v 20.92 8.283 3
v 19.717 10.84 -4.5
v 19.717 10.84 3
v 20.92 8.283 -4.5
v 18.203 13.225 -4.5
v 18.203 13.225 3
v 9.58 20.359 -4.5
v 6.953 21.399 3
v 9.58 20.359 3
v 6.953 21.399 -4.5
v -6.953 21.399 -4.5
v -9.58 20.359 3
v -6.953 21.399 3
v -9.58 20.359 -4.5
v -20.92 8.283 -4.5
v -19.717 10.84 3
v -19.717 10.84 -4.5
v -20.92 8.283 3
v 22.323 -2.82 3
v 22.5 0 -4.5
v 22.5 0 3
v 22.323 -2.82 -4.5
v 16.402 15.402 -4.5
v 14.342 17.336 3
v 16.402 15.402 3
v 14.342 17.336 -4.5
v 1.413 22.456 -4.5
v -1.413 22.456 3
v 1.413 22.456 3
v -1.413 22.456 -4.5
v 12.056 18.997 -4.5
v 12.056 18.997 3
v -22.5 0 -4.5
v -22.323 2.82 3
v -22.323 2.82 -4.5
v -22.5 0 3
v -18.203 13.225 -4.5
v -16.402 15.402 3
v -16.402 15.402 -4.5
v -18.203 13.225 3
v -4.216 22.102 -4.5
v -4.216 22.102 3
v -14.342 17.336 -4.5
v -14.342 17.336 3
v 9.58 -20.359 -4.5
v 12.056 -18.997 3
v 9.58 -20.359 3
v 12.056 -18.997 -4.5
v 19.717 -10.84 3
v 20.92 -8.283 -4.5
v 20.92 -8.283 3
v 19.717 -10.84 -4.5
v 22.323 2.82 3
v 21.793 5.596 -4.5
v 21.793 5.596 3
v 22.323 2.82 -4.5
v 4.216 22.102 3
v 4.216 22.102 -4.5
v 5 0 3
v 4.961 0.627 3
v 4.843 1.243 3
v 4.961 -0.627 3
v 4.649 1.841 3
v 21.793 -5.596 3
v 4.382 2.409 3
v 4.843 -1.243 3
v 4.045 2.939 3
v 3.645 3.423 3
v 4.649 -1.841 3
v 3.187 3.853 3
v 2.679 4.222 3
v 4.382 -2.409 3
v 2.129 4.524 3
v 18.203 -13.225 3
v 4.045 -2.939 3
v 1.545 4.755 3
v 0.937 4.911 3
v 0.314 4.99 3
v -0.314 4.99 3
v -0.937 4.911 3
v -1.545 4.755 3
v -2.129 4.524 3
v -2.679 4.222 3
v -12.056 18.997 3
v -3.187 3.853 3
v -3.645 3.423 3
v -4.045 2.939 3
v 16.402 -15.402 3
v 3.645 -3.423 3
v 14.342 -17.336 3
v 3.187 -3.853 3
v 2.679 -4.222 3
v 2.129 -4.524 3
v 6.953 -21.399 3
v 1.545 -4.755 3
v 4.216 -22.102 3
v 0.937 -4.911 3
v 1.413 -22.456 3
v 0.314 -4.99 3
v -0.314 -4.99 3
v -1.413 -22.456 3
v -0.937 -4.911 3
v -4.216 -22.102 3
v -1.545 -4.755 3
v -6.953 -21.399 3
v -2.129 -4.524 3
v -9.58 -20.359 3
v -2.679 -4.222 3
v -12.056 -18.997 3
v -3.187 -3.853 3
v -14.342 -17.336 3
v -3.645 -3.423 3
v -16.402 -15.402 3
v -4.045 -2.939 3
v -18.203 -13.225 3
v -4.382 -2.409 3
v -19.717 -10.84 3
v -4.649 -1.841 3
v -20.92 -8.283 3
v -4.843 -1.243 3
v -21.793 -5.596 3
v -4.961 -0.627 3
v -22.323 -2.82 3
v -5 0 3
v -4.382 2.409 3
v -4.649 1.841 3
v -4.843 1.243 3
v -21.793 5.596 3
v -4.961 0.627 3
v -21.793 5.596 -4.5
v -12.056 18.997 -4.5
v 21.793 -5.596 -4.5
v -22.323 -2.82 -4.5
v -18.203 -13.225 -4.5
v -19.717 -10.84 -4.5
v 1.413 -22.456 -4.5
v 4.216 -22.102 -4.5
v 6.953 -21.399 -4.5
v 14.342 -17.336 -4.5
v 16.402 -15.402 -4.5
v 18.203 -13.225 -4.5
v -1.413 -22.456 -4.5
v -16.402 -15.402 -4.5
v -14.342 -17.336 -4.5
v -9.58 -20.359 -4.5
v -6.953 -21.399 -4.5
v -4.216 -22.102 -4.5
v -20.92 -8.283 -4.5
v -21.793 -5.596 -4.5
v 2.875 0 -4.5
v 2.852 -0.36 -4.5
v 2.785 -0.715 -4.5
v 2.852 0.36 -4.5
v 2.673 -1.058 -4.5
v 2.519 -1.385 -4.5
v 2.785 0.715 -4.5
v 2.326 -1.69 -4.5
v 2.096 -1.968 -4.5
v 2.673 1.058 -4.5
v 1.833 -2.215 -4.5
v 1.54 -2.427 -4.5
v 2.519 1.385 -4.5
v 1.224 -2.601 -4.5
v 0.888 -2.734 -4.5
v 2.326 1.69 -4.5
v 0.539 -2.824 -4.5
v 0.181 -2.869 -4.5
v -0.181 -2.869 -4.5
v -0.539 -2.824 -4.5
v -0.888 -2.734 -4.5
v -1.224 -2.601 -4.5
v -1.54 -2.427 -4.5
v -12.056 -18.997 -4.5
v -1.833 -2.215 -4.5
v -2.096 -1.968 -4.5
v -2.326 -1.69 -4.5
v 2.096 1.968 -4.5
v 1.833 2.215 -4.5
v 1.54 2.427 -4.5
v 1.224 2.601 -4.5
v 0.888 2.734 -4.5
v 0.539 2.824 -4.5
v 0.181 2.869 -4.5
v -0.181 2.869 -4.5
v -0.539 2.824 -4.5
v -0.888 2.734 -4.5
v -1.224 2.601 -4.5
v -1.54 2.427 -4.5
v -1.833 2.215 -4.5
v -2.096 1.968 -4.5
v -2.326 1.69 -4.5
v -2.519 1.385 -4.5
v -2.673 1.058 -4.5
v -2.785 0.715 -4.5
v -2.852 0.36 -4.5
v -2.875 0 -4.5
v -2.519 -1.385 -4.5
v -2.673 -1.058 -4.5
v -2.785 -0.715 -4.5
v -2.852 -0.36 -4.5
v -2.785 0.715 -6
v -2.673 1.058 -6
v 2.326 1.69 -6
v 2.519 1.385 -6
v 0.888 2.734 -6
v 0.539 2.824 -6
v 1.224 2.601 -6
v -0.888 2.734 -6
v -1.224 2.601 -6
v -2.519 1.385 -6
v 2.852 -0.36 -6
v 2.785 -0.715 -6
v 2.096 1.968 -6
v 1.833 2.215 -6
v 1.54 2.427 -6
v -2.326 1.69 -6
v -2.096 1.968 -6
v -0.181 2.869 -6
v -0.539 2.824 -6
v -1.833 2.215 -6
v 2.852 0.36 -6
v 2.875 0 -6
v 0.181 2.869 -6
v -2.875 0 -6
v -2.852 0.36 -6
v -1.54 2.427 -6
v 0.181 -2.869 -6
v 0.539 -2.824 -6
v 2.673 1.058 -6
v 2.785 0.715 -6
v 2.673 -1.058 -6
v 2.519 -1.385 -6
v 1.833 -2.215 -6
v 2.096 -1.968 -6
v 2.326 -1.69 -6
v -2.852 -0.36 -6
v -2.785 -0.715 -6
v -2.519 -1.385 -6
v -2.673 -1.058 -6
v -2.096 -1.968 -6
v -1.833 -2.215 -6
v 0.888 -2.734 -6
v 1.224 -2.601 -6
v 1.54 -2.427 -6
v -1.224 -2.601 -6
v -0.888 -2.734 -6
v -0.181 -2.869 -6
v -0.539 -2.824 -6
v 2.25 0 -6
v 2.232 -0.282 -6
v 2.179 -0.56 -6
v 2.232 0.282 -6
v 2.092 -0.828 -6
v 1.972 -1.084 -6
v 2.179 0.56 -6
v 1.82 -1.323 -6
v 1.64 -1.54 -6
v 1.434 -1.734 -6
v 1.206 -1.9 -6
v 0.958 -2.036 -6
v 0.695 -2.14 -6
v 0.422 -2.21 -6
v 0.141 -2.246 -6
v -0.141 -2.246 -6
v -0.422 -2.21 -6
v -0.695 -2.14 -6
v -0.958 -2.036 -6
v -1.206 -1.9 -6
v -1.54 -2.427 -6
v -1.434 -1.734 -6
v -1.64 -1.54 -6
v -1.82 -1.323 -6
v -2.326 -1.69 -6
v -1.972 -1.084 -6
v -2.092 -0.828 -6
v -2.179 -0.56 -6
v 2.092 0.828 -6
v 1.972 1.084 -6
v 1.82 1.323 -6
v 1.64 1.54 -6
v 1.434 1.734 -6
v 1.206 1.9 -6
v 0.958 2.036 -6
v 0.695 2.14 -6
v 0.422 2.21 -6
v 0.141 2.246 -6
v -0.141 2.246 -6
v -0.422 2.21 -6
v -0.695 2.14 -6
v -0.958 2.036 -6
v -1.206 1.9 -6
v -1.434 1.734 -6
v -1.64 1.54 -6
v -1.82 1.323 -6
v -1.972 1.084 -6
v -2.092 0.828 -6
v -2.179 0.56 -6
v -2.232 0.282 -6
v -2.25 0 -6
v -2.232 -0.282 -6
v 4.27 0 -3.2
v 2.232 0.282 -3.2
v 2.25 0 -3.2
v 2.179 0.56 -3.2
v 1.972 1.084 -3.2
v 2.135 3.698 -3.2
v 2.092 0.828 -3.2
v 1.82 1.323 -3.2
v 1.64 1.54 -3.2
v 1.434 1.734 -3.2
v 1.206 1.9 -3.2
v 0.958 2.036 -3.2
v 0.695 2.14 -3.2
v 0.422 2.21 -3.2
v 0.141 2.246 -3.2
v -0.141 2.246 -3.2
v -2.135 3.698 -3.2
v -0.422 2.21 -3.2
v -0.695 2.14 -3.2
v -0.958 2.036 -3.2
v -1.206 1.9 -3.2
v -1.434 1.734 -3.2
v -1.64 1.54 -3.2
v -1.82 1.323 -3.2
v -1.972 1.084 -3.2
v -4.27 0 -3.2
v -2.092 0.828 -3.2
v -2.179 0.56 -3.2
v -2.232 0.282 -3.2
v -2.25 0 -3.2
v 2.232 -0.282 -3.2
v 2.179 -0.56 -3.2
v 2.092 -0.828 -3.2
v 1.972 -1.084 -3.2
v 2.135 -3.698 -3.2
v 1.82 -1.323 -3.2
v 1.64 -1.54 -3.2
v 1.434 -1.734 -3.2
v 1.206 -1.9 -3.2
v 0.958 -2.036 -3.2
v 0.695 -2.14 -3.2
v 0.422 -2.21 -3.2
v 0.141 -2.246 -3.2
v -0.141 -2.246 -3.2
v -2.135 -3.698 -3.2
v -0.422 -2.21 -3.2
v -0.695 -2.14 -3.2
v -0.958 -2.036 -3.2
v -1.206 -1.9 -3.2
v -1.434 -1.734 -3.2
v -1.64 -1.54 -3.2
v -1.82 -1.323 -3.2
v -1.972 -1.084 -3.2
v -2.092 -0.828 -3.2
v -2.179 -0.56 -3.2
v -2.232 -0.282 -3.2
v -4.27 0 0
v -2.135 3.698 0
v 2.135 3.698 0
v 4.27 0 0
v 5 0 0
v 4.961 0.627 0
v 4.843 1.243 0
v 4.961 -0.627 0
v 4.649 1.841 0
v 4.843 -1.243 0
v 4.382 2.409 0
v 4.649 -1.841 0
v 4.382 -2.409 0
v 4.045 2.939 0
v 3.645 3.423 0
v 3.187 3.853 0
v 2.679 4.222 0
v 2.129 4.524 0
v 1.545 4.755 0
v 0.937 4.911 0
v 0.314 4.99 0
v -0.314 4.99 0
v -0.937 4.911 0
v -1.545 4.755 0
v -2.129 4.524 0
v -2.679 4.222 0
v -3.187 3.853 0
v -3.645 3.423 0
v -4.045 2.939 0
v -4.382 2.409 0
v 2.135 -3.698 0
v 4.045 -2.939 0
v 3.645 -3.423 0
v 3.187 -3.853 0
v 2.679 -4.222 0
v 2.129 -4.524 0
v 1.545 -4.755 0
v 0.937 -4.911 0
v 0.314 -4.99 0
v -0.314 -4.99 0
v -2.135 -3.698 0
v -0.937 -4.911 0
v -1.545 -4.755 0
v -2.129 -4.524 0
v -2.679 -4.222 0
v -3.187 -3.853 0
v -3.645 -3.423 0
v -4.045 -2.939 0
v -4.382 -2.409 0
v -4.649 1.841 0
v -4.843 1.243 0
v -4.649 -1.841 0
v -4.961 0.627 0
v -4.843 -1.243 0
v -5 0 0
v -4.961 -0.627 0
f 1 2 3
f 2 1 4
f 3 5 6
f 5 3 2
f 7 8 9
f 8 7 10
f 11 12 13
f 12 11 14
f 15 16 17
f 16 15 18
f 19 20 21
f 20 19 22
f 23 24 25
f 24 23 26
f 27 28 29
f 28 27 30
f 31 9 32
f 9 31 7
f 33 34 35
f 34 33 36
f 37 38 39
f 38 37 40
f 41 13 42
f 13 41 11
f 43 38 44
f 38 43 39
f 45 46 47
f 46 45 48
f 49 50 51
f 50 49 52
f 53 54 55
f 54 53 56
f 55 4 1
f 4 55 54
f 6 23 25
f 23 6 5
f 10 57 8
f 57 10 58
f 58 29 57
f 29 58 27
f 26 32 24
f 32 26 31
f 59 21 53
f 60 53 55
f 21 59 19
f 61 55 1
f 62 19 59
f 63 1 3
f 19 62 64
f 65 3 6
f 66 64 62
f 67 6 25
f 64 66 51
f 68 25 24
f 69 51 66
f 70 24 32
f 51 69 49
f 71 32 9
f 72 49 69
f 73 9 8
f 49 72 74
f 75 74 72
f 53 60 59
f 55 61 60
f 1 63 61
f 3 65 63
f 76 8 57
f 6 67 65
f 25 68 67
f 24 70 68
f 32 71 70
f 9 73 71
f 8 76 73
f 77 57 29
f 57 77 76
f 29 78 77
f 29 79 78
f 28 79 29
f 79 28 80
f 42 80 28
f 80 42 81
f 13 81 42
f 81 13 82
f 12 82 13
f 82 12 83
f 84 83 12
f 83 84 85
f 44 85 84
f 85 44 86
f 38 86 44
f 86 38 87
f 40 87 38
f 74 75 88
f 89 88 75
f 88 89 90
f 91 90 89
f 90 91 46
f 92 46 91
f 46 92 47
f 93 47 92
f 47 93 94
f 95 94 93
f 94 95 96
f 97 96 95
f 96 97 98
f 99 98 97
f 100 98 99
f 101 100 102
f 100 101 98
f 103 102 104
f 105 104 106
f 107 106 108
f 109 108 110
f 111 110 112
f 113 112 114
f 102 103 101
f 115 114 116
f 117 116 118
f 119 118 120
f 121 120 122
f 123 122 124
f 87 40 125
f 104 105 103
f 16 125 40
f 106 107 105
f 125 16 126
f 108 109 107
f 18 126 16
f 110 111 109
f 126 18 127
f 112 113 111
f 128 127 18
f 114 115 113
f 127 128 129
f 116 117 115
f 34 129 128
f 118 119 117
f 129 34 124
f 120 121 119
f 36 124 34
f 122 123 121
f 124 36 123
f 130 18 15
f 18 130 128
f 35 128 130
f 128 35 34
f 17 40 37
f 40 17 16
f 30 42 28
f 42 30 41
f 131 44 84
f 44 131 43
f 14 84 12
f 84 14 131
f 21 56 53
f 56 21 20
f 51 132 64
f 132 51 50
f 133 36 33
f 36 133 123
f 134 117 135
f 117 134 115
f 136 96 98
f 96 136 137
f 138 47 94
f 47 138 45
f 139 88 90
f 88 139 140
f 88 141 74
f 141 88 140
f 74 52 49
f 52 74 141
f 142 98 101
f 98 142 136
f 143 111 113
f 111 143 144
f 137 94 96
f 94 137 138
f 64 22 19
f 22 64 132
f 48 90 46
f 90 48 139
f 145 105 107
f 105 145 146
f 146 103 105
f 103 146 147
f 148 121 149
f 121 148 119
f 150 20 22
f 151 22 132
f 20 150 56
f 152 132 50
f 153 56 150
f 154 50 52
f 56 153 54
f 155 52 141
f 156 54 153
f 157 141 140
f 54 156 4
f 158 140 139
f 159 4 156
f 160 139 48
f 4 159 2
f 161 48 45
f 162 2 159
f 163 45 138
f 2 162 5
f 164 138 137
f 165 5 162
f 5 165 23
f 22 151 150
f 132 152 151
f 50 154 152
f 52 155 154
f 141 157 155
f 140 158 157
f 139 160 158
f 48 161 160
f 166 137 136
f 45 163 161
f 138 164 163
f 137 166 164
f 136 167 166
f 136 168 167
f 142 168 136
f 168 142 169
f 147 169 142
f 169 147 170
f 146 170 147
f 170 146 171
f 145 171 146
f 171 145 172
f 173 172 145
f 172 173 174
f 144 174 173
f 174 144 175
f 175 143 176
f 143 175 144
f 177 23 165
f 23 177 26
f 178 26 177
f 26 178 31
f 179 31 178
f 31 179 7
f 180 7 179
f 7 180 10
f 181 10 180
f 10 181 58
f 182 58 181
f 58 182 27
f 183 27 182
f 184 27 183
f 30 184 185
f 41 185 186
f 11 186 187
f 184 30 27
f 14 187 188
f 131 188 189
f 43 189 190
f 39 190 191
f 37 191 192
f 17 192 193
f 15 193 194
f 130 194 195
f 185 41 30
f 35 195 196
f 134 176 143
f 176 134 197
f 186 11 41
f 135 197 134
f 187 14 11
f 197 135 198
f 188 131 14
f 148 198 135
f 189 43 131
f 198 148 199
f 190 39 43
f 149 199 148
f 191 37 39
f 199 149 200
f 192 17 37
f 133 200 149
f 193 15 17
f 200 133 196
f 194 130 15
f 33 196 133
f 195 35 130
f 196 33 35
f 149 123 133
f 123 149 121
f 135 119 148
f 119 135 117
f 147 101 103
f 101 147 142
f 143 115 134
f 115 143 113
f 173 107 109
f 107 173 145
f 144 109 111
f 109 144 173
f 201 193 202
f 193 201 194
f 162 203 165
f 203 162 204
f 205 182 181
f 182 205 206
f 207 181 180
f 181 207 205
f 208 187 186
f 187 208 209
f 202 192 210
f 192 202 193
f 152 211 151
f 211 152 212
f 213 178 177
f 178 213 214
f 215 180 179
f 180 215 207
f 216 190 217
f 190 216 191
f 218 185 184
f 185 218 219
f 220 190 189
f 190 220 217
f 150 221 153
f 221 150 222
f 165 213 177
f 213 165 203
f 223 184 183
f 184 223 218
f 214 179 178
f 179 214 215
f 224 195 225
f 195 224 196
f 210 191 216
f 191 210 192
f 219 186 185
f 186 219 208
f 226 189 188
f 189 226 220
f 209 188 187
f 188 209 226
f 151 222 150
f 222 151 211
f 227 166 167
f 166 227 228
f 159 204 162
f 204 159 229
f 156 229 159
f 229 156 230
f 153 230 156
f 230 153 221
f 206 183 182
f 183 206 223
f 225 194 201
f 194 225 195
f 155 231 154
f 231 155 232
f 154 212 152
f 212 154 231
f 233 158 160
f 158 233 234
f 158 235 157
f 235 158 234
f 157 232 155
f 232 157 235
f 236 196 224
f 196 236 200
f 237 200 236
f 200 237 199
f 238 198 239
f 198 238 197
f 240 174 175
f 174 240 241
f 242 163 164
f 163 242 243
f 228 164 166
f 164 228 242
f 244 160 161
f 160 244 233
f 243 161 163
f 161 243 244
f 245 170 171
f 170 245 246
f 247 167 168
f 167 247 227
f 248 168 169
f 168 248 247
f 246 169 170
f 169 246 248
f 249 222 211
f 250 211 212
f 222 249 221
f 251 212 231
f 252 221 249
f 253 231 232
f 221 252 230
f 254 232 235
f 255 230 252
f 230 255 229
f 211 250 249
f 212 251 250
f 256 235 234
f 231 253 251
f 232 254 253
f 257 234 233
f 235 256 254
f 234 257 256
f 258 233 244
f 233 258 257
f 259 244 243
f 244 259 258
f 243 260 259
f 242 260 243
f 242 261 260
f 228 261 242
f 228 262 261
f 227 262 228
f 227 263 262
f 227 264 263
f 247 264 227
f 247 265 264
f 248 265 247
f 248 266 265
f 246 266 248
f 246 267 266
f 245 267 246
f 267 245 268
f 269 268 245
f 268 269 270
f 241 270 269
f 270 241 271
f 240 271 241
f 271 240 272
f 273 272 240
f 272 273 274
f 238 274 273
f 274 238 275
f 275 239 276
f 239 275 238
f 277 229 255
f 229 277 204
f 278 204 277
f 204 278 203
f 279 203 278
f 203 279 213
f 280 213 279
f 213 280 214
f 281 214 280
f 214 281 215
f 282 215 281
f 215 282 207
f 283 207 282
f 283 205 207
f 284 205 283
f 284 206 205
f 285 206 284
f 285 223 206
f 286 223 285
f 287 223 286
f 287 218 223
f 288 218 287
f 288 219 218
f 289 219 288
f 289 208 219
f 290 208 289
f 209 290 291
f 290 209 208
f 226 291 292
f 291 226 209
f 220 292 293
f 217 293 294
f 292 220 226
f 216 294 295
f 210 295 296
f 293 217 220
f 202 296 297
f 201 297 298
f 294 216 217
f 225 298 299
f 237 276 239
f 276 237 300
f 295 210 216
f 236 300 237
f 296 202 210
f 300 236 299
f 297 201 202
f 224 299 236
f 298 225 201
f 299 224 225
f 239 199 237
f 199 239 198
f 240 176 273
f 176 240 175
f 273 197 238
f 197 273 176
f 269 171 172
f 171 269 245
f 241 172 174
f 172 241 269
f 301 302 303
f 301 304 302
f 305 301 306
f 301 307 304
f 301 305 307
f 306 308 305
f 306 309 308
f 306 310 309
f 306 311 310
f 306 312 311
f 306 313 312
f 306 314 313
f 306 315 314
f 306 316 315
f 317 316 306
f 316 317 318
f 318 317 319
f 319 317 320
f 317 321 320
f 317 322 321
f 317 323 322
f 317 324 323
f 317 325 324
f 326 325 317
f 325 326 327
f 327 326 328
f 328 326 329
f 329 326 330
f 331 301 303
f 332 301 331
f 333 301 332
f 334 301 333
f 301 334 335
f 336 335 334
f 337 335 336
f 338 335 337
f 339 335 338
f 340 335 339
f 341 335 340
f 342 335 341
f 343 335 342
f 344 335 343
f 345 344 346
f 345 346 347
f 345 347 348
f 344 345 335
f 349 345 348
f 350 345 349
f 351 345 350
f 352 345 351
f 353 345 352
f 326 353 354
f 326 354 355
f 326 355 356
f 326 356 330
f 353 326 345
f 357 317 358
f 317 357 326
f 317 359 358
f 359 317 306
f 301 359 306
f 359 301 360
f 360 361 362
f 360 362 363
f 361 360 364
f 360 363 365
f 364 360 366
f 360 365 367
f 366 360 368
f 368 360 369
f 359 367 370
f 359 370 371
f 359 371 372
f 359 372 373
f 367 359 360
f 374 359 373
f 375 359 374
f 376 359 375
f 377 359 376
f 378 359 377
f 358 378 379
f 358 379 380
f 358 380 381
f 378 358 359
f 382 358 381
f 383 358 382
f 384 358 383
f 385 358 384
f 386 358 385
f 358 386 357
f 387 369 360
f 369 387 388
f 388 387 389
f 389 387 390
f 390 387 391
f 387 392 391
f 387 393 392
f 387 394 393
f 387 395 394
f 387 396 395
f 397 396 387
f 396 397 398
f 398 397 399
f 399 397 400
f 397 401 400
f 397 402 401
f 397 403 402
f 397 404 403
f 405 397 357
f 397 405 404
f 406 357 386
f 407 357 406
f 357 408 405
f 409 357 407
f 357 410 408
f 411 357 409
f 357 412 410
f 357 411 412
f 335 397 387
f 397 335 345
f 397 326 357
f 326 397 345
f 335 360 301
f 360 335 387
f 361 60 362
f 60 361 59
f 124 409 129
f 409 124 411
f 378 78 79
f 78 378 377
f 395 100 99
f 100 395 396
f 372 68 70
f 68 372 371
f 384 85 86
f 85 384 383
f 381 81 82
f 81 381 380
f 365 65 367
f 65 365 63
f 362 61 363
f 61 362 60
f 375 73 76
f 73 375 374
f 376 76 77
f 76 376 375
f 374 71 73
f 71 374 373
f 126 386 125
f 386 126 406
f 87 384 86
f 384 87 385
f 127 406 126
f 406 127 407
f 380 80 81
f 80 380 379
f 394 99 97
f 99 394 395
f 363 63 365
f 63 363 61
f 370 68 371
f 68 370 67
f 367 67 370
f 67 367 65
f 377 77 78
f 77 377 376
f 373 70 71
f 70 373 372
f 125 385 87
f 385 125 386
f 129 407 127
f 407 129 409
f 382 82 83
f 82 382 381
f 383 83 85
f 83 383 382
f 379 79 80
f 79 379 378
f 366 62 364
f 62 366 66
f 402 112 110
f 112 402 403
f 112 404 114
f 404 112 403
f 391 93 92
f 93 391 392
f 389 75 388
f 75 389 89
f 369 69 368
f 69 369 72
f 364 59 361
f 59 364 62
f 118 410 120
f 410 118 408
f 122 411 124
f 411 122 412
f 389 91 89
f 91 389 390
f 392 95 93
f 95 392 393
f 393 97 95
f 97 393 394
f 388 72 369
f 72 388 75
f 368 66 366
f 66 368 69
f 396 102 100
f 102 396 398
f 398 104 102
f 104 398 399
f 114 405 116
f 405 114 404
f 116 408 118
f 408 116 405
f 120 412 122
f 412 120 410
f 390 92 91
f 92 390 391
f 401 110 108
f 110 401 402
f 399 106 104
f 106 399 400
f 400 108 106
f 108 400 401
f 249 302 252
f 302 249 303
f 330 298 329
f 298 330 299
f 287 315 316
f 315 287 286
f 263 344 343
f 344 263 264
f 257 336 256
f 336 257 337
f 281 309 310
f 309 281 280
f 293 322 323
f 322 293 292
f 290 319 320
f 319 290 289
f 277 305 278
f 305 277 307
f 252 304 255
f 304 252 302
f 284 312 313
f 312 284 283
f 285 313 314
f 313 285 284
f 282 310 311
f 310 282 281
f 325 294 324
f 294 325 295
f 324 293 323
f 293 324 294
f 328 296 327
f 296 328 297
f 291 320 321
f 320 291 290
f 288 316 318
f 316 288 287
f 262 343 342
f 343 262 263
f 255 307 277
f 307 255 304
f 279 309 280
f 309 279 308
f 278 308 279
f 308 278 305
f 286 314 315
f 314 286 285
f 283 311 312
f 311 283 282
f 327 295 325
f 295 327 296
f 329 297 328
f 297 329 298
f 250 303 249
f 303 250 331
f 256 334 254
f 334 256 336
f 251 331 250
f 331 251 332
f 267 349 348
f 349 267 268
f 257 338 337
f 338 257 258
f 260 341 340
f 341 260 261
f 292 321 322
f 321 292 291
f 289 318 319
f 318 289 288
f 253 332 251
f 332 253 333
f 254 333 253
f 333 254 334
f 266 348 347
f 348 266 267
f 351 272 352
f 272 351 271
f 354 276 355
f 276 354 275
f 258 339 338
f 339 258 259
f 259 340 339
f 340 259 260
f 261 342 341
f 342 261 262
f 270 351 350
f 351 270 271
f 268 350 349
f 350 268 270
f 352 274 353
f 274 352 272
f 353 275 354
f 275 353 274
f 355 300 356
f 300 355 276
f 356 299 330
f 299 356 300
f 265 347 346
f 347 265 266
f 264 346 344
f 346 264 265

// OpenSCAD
$fn = 50;


difference() {
	union() {
		translate(v = [0, 0, -4.5000000000]) {
			cylinder(h = 7.5000000000, r = 22.5000000000);
		}
		#translate(v = [0, 0, -6.0000000000]) {
			cylinder(h = 6, r = 2.8750000000);
		}
	}
	union() {
		translate(v = [0, 0, 0]) {
			rotate(a = [0, 0, 0]) {
				difference() {
					union() {
						translate(v = [0, 0, -3.2000000000]) {
							linear_extrude(height = 3.2000000000) {
								polygon(points = [[4.2698000000, 0.0000000000], [2.1349000000, 3.6977552691], [-2.1349000000, 3.6977552691], [-4.2698000000, 0.0000000000], [-2.1349000000, -3.6977552691], [2.1349000000, -3.6977552691]]);
							}
						}
					}
					union();
				}
			}
		}
		#cylinder(h = 3, r = 5.0000000000);
		#translate(v = [0, 0, -100.0000000000]) {
			cylinder(h = 200, r = 2.2500000000);
		}
	}
}
